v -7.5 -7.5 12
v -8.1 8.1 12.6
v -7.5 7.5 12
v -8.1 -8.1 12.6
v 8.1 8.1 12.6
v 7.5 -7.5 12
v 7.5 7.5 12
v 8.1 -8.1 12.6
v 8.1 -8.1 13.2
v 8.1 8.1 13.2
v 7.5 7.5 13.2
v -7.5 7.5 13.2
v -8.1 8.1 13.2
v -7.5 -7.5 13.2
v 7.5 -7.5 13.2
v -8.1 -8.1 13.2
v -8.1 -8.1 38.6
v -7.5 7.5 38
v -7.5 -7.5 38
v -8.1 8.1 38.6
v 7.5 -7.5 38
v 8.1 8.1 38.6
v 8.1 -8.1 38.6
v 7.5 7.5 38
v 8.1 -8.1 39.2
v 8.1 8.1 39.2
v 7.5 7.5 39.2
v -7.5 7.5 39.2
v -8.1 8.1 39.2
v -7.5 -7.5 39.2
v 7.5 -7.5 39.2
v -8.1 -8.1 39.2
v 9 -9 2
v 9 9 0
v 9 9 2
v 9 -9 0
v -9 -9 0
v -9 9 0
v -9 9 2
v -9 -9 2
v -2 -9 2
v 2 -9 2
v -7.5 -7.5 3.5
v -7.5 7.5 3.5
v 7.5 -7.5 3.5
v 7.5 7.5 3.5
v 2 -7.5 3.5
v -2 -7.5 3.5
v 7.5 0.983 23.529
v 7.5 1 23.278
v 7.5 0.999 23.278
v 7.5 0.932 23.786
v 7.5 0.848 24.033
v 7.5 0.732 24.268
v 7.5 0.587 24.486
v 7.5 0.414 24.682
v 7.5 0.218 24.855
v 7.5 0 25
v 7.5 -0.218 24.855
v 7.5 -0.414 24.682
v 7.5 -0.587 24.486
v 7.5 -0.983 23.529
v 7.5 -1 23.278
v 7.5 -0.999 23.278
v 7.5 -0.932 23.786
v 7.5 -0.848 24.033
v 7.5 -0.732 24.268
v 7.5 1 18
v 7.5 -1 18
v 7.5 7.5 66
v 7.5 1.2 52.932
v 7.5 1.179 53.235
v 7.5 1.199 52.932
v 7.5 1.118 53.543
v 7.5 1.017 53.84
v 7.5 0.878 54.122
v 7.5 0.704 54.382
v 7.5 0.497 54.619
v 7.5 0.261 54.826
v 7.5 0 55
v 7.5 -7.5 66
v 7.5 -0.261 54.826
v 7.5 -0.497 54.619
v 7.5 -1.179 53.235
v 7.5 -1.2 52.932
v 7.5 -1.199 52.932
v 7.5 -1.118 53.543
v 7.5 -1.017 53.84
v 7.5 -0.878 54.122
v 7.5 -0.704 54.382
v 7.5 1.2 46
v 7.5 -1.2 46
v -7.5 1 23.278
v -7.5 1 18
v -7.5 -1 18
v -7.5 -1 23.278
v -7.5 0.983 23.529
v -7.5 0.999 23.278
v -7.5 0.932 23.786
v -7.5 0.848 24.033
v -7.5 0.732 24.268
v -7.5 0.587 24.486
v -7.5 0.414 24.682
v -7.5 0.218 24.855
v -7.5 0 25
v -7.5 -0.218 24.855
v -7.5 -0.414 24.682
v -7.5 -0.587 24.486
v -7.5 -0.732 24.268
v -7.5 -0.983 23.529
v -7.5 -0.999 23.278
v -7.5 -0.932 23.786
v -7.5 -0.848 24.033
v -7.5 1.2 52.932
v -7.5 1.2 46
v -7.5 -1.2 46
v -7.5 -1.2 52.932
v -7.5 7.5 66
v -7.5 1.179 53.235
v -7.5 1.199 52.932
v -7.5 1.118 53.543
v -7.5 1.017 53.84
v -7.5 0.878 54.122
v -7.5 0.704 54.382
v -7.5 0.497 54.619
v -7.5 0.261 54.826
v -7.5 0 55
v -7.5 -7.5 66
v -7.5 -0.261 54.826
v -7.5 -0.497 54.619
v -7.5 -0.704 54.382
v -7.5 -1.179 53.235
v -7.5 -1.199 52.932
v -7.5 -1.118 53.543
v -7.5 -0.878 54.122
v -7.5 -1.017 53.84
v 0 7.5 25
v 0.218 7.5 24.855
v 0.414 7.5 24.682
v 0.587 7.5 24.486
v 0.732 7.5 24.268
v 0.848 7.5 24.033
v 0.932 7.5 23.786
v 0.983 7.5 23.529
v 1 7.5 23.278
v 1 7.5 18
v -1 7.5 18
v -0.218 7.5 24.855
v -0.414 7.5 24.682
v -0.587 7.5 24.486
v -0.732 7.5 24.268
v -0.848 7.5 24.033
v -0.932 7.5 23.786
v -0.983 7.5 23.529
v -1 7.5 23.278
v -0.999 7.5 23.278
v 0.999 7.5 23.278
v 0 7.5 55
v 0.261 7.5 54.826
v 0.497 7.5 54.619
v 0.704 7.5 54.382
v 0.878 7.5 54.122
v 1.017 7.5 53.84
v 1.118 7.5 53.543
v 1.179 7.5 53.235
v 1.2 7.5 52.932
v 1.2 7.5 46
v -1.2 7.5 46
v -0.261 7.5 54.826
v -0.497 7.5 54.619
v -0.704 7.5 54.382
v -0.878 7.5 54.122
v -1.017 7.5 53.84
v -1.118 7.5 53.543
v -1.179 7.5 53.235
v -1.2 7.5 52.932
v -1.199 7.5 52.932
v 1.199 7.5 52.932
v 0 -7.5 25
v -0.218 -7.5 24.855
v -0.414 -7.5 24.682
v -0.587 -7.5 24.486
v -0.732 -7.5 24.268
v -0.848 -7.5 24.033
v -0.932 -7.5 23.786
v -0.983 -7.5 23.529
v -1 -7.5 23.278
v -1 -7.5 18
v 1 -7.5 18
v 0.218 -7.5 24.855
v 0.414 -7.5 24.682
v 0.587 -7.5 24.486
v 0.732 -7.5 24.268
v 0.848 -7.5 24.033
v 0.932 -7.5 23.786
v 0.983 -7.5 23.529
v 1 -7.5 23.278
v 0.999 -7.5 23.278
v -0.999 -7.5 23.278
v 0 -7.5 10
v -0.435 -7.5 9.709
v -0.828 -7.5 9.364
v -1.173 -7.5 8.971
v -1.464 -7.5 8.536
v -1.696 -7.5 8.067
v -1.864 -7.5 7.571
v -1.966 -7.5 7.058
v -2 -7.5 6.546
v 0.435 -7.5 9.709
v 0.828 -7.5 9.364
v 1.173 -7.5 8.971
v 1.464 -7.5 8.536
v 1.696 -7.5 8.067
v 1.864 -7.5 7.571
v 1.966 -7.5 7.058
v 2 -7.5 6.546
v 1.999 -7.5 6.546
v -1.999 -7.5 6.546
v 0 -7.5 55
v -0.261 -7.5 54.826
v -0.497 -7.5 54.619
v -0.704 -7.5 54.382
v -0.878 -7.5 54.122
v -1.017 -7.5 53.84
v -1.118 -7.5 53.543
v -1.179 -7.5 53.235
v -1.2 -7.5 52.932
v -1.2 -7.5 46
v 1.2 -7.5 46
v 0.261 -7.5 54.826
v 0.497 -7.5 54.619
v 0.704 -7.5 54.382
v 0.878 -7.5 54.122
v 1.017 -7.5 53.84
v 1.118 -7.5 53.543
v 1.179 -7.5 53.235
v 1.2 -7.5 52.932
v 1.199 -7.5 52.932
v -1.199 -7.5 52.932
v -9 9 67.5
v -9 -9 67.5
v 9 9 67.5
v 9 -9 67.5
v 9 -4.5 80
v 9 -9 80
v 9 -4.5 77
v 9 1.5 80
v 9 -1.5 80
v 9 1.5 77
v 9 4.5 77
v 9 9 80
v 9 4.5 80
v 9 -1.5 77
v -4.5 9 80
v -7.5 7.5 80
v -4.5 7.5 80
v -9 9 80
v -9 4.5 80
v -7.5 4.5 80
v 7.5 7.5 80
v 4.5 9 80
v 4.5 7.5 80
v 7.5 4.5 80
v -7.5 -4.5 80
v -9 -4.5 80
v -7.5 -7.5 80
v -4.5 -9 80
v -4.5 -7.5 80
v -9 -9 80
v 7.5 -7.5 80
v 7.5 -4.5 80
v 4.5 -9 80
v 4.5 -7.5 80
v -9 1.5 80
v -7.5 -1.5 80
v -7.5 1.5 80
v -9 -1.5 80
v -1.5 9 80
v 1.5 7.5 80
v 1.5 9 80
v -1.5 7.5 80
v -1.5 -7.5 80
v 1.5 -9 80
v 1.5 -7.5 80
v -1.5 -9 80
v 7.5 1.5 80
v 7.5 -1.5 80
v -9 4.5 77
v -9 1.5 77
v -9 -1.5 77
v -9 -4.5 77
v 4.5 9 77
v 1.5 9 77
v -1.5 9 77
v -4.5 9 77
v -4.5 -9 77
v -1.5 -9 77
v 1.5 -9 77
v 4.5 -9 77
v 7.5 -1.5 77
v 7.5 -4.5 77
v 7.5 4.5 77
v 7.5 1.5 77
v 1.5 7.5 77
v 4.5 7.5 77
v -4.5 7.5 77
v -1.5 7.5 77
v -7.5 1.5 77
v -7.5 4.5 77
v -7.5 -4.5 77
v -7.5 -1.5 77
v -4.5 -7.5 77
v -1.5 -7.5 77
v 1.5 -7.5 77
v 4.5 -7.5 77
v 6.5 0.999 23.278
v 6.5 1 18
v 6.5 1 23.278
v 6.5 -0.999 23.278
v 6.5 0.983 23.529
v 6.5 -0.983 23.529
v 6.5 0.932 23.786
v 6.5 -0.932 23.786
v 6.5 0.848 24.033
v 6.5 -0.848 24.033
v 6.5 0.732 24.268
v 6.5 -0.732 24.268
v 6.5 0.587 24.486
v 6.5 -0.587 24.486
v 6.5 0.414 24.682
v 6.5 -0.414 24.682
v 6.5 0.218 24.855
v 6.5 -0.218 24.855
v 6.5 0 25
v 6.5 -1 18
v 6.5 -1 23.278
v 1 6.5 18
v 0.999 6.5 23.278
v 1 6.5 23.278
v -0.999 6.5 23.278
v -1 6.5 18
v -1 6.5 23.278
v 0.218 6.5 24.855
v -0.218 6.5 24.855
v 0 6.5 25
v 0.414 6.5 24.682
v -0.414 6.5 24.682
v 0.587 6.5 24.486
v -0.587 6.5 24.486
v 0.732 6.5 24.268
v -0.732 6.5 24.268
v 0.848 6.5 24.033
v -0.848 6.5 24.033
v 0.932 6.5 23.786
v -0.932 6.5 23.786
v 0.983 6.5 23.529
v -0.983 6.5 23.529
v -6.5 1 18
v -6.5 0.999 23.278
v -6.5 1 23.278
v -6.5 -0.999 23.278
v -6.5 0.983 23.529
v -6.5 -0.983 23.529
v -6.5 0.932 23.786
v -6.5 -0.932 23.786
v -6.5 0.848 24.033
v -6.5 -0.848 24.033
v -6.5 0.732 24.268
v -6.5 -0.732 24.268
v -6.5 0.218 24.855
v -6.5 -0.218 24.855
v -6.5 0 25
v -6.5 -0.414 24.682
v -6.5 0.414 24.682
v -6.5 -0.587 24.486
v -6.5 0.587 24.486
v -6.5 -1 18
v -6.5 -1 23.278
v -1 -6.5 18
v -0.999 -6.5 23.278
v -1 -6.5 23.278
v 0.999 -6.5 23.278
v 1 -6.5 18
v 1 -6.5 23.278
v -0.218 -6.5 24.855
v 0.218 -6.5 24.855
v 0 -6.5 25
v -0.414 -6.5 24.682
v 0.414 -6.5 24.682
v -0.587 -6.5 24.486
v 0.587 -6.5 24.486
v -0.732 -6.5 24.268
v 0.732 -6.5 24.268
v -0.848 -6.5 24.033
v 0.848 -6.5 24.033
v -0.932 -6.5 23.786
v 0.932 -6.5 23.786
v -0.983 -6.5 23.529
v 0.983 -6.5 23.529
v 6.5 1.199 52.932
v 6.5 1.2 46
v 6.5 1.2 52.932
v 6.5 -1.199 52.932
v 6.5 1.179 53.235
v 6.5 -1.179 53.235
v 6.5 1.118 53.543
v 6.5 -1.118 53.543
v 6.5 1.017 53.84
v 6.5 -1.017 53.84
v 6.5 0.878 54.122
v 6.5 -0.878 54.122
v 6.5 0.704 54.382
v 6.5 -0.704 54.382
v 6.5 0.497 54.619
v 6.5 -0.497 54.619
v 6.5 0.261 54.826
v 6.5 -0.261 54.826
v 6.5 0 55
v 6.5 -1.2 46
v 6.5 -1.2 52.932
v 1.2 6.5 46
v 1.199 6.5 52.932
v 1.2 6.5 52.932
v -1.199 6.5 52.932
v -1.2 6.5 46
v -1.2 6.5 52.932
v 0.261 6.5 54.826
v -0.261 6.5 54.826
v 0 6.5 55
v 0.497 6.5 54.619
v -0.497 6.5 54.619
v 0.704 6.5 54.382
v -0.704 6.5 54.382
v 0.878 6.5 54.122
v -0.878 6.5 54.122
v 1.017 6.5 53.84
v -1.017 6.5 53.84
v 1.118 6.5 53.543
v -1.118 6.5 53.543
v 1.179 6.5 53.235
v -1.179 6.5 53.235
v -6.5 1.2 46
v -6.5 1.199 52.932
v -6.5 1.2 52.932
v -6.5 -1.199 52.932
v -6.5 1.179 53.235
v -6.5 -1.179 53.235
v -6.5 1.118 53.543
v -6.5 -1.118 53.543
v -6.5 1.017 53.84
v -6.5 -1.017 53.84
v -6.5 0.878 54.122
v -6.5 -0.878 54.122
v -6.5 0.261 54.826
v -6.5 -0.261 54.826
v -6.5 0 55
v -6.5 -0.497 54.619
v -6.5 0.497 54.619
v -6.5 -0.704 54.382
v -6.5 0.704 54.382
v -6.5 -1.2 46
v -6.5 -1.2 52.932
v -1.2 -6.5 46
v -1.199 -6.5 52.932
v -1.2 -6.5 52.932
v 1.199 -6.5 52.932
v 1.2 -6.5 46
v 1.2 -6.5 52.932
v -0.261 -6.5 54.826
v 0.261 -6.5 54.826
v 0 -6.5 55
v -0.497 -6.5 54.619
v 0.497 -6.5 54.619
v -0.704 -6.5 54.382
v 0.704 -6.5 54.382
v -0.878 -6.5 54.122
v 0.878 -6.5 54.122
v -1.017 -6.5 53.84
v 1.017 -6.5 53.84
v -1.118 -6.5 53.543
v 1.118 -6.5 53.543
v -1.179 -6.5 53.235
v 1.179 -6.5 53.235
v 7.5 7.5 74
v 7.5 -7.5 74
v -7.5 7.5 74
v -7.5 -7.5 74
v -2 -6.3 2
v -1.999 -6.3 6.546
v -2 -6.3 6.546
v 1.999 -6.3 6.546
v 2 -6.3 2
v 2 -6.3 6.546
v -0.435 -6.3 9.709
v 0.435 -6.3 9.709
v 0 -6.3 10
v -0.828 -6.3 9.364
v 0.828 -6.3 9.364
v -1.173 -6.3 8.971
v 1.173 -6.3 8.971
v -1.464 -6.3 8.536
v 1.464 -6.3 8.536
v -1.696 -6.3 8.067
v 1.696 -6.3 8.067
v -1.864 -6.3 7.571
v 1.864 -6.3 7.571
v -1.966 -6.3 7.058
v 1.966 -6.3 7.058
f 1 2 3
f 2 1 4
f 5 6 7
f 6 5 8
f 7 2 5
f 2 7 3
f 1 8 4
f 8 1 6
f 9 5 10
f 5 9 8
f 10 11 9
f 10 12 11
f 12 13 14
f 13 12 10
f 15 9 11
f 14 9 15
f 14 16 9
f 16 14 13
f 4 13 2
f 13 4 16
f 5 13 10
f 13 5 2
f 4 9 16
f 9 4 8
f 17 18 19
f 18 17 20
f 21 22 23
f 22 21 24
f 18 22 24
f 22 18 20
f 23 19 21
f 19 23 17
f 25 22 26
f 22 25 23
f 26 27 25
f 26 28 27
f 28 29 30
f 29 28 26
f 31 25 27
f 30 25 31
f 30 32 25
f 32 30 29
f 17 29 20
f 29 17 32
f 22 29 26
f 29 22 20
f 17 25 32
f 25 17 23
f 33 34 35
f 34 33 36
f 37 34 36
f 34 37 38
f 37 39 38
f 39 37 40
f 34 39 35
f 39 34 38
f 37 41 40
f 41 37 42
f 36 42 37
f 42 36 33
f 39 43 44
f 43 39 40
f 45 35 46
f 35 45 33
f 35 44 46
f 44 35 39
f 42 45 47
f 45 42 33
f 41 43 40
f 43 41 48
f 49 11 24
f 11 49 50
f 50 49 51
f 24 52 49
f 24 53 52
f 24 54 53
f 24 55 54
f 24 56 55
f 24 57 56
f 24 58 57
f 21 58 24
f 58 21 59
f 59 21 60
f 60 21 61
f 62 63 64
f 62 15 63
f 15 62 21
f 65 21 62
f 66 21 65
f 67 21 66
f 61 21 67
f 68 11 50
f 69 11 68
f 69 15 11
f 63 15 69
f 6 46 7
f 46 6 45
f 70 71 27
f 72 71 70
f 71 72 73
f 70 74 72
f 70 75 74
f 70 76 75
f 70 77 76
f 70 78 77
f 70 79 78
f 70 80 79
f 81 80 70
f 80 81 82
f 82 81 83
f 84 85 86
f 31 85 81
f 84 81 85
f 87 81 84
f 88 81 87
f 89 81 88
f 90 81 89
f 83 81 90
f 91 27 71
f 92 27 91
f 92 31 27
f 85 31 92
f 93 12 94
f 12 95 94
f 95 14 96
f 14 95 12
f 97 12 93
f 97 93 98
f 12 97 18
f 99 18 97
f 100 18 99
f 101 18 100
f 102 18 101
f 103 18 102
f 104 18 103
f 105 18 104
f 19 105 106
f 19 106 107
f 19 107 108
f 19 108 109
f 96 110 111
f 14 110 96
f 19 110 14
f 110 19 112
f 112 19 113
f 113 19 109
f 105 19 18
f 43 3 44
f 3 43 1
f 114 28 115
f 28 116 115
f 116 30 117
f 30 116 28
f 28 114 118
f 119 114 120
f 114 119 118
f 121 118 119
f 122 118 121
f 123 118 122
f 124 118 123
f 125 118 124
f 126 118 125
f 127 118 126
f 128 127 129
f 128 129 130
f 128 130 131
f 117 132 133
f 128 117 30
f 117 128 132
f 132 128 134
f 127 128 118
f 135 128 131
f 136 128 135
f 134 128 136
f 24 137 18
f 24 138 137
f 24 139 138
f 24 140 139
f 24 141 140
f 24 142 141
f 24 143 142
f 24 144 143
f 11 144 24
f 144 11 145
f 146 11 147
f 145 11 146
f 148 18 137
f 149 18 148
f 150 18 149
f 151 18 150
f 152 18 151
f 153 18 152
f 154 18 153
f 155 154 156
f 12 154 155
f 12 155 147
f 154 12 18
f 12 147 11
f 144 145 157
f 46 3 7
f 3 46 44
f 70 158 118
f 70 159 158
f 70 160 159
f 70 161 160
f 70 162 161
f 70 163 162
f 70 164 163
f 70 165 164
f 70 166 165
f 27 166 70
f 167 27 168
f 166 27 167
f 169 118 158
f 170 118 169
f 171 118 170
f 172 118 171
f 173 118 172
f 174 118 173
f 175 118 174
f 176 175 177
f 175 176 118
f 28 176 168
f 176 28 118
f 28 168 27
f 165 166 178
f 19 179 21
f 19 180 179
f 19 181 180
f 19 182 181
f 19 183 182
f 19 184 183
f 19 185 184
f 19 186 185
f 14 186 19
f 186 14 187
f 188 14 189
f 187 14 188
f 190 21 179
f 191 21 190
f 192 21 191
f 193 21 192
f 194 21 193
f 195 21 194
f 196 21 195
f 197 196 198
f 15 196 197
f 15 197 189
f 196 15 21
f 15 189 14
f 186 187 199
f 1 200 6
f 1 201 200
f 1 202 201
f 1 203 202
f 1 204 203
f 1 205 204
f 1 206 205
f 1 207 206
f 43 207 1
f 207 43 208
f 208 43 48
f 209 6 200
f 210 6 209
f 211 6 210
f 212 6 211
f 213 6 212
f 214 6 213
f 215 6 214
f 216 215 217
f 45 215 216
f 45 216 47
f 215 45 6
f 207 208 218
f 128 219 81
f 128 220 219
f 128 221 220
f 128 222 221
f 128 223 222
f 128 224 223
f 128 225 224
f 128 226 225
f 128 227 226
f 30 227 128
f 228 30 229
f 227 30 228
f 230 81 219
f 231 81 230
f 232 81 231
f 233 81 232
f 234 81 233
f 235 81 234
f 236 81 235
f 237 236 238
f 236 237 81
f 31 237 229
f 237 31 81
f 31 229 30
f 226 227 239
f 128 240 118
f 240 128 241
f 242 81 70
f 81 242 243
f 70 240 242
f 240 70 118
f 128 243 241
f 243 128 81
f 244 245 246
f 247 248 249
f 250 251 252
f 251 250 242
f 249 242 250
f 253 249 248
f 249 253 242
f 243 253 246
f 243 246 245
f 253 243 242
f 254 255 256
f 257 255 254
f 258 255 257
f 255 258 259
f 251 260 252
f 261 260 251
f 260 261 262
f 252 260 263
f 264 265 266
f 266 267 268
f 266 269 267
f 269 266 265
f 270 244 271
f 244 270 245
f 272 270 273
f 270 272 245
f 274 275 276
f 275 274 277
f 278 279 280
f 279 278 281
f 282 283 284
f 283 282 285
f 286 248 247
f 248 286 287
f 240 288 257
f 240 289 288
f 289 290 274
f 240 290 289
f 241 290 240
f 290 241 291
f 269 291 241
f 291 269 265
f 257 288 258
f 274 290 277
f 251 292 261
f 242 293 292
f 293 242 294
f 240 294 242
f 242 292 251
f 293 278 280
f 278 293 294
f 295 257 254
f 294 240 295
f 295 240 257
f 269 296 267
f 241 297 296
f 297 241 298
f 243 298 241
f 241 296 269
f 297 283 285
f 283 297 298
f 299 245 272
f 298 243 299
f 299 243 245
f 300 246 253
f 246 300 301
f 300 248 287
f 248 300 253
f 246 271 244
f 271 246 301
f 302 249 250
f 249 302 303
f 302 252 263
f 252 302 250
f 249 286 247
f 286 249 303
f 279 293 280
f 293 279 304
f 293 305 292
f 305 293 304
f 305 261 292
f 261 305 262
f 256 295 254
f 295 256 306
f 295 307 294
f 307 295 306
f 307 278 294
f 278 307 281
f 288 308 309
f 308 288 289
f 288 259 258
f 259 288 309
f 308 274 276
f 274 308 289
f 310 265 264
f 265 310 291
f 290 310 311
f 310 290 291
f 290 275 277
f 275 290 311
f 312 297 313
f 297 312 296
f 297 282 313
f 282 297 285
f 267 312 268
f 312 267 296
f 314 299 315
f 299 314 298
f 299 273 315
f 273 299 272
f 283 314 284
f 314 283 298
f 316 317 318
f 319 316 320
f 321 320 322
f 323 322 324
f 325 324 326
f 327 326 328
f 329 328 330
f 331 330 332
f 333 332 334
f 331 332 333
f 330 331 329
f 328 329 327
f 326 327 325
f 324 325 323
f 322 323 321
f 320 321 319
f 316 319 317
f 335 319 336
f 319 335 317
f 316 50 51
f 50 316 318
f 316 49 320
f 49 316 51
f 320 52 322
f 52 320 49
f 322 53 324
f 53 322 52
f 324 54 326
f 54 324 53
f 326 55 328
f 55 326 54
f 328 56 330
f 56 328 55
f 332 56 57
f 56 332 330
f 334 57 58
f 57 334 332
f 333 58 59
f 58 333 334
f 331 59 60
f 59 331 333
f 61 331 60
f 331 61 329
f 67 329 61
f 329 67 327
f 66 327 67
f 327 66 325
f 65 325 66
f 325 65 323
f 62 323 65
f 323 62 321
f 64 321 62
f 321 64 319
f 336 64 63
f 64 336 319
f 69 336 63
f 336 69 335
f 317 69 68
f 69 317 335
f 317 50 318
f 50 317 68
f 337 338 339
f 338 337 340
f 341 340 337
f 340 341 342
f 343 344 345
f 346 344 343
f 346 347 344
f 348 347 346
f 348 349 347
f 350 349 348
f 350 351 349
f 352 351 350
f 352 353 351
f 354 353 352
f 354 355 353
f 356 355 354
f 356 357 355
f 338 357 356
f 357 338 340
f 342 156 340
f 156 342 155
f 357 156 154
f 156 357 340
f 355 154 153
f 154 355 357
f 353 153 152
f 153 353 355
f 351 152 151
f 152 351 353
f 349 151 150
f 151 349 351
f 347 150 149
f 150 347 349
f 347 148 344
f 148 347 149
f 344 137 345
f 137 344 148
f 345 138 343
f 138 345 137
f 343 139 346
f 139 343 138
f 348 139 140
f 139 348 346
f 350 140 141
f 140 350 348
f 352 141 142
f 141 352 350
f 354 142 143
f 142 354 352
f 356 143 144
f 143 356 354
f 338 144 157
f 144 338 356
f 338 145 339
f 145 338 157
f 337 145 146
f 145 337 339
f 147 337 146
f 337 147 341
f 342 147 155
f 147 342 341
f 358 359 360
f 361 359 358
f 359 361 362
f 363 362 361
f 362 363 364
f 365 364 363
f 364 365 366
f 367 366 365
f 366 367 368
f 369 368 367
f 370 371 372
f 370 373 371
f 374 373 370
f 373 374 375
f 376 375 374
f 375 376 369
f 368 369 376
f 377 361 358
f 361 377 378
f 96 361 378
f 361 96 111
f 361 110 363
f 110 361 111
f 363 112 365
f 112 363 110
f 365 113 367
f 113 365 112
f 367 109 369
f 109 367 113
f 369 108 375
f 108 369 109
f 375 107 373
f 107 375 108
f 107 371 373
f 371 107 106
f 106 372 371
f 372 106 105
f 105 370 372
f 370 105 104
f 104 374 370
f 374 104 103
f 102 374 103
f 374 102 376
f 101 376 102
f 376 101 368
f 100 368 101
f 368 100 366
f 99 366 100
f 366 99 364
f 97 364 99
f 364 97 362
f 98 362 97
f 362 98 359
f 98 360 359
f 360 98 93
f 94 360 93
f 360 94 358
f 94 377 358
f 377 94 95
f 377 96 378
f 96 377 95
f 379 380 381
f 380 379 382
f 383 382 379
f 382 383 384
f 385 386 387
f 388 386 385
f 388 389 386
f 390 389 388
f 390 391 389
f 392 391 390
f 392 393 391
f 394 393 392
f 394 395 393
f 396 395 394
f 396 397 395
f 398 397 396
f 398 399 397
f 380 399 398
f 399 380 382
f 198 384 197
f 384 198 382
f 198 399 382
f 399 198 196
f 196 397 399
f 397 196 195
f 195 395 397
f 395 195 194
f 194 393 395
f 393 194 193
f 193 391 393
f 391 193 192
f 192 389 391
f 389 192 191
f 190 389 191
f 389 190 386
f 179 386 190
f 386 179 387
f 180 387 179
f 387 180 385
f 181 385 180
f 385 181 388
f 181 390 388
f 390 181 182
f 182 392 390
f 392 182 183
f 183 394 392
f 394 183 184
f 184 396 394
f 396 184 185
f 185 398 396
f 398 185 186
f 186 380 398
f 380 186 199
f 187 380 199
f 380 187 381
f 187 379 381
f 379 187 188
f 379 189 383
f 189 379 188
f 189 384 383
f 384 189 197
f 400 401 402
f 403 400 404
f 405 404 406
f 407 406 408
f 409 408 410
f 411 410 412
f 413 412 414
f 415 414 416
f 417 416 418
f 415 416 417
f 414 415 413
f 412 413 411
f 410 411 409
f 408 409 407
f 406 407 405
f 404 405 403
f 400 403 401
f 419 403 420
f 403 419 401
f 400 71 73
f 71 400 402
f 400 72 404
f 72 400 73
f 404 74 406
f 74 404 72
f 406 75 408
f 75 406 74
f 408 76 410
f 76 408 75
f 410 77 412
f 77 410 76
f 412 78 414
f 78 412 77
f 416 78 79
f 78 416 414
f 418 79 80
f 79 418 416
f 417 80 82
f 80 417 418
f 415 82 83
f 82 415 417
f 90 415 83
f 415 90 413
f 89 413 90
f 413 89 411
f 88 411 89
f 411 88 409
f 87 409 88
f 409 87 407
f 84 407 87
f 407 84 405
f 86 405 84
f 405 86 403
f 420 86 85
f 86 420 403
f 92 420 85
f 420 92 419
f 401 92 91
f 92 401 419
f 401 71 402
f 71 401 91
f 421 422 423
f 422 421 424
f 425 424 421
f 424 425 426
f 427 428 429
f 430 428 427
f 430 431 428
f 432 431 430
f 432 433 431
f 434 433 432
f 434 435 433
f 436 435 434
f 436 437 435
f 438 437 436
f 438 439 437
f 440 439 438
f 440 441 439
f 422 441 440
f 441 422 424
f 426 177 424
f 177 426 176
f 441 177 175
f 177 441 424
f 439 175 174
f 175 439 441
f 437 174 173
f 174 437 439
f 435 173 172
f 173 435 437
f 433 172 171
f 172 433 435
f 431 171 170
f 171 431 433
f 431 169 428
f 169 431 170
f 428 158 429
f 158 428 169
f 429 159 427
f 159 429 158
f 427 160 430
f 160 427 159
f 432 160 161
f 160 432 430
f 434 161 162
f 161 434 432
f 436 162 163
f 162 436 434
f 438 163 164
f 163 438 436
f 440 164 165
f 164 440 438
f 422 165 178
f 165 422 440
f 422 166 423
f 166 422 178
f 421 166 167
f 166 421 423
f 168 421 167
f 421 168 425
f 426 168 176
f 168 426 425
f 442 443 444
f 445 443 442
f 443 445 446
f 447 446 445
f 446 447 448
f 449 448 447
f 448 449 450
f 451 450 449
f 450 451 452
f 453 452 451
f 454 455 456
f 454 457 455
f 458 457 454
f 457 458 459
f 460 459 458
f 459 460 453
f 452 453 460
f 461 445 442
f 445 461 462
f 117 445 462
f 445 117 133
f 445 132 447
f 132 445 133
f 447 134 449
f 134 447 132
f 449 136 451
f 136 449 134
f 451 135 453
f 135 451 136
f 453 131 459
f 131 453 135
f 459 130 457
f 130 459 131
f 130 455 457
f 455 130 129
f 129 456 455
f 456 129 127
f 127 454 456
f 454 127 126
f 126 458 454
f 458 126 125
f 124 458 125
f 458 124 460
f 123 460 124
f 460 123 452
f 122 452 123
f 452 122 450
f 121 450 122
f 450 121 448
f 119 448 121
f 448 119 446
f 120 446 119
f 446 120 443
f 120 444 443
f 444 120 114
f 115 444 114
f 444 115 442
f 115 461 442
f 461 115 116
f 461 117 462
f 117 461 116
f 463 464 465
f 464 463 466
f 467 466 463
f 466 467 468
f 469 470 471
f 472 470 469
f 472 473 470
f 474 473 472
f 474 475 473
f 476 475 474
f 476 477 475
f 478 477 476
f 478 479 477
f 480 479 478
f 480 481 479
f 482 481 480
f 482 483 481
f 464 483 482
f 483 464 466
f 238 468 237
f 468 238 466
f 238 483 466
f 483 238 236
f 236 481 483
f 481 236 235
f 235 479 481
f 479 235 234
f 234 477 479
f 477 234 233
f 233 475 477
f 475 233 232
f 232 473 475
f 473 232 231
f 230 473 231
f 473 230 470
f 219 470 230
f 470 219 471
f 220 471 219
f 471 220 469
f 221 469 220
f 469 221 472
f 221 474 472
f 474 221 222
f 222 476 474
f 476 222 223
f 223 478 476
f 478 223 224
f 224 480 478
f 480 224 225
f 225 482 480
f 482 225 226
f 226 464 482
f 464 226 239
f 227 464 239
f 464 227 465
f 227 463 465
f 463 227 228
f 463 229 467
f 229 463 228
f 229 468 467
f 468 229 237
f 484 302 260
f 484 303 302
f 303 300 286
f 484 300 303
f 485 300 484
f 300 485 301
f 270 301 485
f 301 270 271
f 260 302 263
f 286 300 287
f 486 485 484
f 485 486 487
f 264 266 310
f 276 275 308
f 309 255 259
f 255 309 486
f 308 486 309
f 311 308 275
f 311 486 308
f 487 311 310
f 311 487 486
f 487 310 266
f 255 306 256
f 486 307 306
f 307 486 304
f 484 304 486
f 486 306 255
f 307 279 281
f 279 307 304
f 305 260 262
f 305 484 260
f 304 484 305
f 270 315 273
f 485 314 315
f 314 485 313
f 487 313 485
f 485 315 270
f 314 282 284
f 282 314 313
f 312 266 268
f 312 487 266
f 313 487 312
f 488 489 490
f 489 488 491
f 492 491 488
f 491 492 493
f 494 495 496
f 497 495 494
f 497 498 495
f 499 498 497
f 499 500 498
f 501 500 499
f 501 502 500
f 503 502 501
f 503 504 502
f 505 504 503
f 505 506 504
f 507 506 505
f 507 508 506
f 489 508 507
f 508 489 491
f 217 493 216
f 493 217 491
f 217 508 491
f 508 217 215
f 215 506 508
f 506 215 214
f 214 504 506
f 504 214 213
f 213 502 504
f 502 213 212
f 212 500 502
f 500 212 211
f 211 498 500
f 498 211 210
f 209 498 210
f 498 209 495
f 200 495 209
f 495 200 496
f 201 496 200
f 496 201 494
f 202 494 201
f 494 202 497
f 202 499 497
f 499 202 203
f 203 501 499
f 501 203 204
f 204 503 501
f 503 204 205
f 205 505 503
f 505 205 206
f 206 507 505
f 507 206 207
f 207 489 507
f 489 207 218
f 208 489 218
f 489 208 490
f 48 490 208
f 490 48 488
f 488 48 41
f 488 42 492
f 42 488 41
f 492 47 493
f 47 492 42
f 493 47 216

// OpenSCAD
// Square castle tower, 80 mm tall, 18 mm footprint. Prints upright, no supports.
$fn = 48;

W = 15;                          // shaft width
B = 18;                          // plinth and parapet width
H = 80;                          // total height
base_h  = 2;                     // plinth height
shaft_z = base_h + (B - W) / 2;  // top of the 45° plinth chamfer
flare_z = 66;                    // corbel flare starts
par_z   = flare_z + (B - W) / 2; // parapet starts (45° flare)
walk_z  = 74;                    // walkway
cren_z  = 77;                    // crenel bottom
wall    = 1.5;                   // parapet wall

module frustum(z0, w0, w1, h) translate([0, 0, z0]) linear_extrude(height = h, scale = w1 / w0) square(w0, center = true);
module box(z0, w, h) translate([-w / 2, -w / 2, z0]) cube([w, w, h]);

// stone band, 45° underside
module band(z0) { frustum(z0, W, W + 1.2, 0.6); box(z0 + 0.6, W + 1.2, 0.6); }

// pointed arch, w wide, h tall, base at y = 0
module arch2d(w, h) {
    s = h - w * sqrt(3) / 2;
    translate([-w / 2, 0]) square([w, s + 0.01]);
    translate([0, s]) intersection() {
        translate([-w / 2, 0]) circle(r = w);
        translate([ w / 2, 0]) circle(r = w);
        translate([-w / 2, 0]) square([w, w]);
    }
}

// recess into the face at `angle` (0 = +X), base at height z, floor at distance d from the axis
module recess(angle, z, d, len = 4) rotate([0, 0, angle]) translate([d, 0, z]) rotate([90, 0, 90]) linear_extrude(height = len) children();

difference() {
    union() {
        box(0, B, base_h);
        frustum(base_h, B, W, shaft_z - base_h);
        box(shaft_z - 0.01, W, flare_z - shaft_z + 0.02);
        frustum(flare_z, W, B, par_z - flare_z);
        box(par_z, B, H - par_z);
        band(12);
        band(38);
    }
    box(walk_z, B - 2 * wall, H);                                   // walkway
    for (a = [0 : 90 : 270], o = [-3, 3])                            // crenels
        rotate([0, 0, a]) translate([B / 2 - wall - 1, o - 1.5, cren_z]) cube([wall + 2, 3, 10]);
    recess(270, base_h, W / 2 - 1.2) arch2d(4, 8);                  // door
    for (a = [0 : 90 : 270]) recess(a, 18, W / 2 - 1) arch2d(2, 7);    // windows
    for (a = [0 : 90 : 270]) recess(a, 46, W / 2 - 1) arch2d(2.4, 9);
}
